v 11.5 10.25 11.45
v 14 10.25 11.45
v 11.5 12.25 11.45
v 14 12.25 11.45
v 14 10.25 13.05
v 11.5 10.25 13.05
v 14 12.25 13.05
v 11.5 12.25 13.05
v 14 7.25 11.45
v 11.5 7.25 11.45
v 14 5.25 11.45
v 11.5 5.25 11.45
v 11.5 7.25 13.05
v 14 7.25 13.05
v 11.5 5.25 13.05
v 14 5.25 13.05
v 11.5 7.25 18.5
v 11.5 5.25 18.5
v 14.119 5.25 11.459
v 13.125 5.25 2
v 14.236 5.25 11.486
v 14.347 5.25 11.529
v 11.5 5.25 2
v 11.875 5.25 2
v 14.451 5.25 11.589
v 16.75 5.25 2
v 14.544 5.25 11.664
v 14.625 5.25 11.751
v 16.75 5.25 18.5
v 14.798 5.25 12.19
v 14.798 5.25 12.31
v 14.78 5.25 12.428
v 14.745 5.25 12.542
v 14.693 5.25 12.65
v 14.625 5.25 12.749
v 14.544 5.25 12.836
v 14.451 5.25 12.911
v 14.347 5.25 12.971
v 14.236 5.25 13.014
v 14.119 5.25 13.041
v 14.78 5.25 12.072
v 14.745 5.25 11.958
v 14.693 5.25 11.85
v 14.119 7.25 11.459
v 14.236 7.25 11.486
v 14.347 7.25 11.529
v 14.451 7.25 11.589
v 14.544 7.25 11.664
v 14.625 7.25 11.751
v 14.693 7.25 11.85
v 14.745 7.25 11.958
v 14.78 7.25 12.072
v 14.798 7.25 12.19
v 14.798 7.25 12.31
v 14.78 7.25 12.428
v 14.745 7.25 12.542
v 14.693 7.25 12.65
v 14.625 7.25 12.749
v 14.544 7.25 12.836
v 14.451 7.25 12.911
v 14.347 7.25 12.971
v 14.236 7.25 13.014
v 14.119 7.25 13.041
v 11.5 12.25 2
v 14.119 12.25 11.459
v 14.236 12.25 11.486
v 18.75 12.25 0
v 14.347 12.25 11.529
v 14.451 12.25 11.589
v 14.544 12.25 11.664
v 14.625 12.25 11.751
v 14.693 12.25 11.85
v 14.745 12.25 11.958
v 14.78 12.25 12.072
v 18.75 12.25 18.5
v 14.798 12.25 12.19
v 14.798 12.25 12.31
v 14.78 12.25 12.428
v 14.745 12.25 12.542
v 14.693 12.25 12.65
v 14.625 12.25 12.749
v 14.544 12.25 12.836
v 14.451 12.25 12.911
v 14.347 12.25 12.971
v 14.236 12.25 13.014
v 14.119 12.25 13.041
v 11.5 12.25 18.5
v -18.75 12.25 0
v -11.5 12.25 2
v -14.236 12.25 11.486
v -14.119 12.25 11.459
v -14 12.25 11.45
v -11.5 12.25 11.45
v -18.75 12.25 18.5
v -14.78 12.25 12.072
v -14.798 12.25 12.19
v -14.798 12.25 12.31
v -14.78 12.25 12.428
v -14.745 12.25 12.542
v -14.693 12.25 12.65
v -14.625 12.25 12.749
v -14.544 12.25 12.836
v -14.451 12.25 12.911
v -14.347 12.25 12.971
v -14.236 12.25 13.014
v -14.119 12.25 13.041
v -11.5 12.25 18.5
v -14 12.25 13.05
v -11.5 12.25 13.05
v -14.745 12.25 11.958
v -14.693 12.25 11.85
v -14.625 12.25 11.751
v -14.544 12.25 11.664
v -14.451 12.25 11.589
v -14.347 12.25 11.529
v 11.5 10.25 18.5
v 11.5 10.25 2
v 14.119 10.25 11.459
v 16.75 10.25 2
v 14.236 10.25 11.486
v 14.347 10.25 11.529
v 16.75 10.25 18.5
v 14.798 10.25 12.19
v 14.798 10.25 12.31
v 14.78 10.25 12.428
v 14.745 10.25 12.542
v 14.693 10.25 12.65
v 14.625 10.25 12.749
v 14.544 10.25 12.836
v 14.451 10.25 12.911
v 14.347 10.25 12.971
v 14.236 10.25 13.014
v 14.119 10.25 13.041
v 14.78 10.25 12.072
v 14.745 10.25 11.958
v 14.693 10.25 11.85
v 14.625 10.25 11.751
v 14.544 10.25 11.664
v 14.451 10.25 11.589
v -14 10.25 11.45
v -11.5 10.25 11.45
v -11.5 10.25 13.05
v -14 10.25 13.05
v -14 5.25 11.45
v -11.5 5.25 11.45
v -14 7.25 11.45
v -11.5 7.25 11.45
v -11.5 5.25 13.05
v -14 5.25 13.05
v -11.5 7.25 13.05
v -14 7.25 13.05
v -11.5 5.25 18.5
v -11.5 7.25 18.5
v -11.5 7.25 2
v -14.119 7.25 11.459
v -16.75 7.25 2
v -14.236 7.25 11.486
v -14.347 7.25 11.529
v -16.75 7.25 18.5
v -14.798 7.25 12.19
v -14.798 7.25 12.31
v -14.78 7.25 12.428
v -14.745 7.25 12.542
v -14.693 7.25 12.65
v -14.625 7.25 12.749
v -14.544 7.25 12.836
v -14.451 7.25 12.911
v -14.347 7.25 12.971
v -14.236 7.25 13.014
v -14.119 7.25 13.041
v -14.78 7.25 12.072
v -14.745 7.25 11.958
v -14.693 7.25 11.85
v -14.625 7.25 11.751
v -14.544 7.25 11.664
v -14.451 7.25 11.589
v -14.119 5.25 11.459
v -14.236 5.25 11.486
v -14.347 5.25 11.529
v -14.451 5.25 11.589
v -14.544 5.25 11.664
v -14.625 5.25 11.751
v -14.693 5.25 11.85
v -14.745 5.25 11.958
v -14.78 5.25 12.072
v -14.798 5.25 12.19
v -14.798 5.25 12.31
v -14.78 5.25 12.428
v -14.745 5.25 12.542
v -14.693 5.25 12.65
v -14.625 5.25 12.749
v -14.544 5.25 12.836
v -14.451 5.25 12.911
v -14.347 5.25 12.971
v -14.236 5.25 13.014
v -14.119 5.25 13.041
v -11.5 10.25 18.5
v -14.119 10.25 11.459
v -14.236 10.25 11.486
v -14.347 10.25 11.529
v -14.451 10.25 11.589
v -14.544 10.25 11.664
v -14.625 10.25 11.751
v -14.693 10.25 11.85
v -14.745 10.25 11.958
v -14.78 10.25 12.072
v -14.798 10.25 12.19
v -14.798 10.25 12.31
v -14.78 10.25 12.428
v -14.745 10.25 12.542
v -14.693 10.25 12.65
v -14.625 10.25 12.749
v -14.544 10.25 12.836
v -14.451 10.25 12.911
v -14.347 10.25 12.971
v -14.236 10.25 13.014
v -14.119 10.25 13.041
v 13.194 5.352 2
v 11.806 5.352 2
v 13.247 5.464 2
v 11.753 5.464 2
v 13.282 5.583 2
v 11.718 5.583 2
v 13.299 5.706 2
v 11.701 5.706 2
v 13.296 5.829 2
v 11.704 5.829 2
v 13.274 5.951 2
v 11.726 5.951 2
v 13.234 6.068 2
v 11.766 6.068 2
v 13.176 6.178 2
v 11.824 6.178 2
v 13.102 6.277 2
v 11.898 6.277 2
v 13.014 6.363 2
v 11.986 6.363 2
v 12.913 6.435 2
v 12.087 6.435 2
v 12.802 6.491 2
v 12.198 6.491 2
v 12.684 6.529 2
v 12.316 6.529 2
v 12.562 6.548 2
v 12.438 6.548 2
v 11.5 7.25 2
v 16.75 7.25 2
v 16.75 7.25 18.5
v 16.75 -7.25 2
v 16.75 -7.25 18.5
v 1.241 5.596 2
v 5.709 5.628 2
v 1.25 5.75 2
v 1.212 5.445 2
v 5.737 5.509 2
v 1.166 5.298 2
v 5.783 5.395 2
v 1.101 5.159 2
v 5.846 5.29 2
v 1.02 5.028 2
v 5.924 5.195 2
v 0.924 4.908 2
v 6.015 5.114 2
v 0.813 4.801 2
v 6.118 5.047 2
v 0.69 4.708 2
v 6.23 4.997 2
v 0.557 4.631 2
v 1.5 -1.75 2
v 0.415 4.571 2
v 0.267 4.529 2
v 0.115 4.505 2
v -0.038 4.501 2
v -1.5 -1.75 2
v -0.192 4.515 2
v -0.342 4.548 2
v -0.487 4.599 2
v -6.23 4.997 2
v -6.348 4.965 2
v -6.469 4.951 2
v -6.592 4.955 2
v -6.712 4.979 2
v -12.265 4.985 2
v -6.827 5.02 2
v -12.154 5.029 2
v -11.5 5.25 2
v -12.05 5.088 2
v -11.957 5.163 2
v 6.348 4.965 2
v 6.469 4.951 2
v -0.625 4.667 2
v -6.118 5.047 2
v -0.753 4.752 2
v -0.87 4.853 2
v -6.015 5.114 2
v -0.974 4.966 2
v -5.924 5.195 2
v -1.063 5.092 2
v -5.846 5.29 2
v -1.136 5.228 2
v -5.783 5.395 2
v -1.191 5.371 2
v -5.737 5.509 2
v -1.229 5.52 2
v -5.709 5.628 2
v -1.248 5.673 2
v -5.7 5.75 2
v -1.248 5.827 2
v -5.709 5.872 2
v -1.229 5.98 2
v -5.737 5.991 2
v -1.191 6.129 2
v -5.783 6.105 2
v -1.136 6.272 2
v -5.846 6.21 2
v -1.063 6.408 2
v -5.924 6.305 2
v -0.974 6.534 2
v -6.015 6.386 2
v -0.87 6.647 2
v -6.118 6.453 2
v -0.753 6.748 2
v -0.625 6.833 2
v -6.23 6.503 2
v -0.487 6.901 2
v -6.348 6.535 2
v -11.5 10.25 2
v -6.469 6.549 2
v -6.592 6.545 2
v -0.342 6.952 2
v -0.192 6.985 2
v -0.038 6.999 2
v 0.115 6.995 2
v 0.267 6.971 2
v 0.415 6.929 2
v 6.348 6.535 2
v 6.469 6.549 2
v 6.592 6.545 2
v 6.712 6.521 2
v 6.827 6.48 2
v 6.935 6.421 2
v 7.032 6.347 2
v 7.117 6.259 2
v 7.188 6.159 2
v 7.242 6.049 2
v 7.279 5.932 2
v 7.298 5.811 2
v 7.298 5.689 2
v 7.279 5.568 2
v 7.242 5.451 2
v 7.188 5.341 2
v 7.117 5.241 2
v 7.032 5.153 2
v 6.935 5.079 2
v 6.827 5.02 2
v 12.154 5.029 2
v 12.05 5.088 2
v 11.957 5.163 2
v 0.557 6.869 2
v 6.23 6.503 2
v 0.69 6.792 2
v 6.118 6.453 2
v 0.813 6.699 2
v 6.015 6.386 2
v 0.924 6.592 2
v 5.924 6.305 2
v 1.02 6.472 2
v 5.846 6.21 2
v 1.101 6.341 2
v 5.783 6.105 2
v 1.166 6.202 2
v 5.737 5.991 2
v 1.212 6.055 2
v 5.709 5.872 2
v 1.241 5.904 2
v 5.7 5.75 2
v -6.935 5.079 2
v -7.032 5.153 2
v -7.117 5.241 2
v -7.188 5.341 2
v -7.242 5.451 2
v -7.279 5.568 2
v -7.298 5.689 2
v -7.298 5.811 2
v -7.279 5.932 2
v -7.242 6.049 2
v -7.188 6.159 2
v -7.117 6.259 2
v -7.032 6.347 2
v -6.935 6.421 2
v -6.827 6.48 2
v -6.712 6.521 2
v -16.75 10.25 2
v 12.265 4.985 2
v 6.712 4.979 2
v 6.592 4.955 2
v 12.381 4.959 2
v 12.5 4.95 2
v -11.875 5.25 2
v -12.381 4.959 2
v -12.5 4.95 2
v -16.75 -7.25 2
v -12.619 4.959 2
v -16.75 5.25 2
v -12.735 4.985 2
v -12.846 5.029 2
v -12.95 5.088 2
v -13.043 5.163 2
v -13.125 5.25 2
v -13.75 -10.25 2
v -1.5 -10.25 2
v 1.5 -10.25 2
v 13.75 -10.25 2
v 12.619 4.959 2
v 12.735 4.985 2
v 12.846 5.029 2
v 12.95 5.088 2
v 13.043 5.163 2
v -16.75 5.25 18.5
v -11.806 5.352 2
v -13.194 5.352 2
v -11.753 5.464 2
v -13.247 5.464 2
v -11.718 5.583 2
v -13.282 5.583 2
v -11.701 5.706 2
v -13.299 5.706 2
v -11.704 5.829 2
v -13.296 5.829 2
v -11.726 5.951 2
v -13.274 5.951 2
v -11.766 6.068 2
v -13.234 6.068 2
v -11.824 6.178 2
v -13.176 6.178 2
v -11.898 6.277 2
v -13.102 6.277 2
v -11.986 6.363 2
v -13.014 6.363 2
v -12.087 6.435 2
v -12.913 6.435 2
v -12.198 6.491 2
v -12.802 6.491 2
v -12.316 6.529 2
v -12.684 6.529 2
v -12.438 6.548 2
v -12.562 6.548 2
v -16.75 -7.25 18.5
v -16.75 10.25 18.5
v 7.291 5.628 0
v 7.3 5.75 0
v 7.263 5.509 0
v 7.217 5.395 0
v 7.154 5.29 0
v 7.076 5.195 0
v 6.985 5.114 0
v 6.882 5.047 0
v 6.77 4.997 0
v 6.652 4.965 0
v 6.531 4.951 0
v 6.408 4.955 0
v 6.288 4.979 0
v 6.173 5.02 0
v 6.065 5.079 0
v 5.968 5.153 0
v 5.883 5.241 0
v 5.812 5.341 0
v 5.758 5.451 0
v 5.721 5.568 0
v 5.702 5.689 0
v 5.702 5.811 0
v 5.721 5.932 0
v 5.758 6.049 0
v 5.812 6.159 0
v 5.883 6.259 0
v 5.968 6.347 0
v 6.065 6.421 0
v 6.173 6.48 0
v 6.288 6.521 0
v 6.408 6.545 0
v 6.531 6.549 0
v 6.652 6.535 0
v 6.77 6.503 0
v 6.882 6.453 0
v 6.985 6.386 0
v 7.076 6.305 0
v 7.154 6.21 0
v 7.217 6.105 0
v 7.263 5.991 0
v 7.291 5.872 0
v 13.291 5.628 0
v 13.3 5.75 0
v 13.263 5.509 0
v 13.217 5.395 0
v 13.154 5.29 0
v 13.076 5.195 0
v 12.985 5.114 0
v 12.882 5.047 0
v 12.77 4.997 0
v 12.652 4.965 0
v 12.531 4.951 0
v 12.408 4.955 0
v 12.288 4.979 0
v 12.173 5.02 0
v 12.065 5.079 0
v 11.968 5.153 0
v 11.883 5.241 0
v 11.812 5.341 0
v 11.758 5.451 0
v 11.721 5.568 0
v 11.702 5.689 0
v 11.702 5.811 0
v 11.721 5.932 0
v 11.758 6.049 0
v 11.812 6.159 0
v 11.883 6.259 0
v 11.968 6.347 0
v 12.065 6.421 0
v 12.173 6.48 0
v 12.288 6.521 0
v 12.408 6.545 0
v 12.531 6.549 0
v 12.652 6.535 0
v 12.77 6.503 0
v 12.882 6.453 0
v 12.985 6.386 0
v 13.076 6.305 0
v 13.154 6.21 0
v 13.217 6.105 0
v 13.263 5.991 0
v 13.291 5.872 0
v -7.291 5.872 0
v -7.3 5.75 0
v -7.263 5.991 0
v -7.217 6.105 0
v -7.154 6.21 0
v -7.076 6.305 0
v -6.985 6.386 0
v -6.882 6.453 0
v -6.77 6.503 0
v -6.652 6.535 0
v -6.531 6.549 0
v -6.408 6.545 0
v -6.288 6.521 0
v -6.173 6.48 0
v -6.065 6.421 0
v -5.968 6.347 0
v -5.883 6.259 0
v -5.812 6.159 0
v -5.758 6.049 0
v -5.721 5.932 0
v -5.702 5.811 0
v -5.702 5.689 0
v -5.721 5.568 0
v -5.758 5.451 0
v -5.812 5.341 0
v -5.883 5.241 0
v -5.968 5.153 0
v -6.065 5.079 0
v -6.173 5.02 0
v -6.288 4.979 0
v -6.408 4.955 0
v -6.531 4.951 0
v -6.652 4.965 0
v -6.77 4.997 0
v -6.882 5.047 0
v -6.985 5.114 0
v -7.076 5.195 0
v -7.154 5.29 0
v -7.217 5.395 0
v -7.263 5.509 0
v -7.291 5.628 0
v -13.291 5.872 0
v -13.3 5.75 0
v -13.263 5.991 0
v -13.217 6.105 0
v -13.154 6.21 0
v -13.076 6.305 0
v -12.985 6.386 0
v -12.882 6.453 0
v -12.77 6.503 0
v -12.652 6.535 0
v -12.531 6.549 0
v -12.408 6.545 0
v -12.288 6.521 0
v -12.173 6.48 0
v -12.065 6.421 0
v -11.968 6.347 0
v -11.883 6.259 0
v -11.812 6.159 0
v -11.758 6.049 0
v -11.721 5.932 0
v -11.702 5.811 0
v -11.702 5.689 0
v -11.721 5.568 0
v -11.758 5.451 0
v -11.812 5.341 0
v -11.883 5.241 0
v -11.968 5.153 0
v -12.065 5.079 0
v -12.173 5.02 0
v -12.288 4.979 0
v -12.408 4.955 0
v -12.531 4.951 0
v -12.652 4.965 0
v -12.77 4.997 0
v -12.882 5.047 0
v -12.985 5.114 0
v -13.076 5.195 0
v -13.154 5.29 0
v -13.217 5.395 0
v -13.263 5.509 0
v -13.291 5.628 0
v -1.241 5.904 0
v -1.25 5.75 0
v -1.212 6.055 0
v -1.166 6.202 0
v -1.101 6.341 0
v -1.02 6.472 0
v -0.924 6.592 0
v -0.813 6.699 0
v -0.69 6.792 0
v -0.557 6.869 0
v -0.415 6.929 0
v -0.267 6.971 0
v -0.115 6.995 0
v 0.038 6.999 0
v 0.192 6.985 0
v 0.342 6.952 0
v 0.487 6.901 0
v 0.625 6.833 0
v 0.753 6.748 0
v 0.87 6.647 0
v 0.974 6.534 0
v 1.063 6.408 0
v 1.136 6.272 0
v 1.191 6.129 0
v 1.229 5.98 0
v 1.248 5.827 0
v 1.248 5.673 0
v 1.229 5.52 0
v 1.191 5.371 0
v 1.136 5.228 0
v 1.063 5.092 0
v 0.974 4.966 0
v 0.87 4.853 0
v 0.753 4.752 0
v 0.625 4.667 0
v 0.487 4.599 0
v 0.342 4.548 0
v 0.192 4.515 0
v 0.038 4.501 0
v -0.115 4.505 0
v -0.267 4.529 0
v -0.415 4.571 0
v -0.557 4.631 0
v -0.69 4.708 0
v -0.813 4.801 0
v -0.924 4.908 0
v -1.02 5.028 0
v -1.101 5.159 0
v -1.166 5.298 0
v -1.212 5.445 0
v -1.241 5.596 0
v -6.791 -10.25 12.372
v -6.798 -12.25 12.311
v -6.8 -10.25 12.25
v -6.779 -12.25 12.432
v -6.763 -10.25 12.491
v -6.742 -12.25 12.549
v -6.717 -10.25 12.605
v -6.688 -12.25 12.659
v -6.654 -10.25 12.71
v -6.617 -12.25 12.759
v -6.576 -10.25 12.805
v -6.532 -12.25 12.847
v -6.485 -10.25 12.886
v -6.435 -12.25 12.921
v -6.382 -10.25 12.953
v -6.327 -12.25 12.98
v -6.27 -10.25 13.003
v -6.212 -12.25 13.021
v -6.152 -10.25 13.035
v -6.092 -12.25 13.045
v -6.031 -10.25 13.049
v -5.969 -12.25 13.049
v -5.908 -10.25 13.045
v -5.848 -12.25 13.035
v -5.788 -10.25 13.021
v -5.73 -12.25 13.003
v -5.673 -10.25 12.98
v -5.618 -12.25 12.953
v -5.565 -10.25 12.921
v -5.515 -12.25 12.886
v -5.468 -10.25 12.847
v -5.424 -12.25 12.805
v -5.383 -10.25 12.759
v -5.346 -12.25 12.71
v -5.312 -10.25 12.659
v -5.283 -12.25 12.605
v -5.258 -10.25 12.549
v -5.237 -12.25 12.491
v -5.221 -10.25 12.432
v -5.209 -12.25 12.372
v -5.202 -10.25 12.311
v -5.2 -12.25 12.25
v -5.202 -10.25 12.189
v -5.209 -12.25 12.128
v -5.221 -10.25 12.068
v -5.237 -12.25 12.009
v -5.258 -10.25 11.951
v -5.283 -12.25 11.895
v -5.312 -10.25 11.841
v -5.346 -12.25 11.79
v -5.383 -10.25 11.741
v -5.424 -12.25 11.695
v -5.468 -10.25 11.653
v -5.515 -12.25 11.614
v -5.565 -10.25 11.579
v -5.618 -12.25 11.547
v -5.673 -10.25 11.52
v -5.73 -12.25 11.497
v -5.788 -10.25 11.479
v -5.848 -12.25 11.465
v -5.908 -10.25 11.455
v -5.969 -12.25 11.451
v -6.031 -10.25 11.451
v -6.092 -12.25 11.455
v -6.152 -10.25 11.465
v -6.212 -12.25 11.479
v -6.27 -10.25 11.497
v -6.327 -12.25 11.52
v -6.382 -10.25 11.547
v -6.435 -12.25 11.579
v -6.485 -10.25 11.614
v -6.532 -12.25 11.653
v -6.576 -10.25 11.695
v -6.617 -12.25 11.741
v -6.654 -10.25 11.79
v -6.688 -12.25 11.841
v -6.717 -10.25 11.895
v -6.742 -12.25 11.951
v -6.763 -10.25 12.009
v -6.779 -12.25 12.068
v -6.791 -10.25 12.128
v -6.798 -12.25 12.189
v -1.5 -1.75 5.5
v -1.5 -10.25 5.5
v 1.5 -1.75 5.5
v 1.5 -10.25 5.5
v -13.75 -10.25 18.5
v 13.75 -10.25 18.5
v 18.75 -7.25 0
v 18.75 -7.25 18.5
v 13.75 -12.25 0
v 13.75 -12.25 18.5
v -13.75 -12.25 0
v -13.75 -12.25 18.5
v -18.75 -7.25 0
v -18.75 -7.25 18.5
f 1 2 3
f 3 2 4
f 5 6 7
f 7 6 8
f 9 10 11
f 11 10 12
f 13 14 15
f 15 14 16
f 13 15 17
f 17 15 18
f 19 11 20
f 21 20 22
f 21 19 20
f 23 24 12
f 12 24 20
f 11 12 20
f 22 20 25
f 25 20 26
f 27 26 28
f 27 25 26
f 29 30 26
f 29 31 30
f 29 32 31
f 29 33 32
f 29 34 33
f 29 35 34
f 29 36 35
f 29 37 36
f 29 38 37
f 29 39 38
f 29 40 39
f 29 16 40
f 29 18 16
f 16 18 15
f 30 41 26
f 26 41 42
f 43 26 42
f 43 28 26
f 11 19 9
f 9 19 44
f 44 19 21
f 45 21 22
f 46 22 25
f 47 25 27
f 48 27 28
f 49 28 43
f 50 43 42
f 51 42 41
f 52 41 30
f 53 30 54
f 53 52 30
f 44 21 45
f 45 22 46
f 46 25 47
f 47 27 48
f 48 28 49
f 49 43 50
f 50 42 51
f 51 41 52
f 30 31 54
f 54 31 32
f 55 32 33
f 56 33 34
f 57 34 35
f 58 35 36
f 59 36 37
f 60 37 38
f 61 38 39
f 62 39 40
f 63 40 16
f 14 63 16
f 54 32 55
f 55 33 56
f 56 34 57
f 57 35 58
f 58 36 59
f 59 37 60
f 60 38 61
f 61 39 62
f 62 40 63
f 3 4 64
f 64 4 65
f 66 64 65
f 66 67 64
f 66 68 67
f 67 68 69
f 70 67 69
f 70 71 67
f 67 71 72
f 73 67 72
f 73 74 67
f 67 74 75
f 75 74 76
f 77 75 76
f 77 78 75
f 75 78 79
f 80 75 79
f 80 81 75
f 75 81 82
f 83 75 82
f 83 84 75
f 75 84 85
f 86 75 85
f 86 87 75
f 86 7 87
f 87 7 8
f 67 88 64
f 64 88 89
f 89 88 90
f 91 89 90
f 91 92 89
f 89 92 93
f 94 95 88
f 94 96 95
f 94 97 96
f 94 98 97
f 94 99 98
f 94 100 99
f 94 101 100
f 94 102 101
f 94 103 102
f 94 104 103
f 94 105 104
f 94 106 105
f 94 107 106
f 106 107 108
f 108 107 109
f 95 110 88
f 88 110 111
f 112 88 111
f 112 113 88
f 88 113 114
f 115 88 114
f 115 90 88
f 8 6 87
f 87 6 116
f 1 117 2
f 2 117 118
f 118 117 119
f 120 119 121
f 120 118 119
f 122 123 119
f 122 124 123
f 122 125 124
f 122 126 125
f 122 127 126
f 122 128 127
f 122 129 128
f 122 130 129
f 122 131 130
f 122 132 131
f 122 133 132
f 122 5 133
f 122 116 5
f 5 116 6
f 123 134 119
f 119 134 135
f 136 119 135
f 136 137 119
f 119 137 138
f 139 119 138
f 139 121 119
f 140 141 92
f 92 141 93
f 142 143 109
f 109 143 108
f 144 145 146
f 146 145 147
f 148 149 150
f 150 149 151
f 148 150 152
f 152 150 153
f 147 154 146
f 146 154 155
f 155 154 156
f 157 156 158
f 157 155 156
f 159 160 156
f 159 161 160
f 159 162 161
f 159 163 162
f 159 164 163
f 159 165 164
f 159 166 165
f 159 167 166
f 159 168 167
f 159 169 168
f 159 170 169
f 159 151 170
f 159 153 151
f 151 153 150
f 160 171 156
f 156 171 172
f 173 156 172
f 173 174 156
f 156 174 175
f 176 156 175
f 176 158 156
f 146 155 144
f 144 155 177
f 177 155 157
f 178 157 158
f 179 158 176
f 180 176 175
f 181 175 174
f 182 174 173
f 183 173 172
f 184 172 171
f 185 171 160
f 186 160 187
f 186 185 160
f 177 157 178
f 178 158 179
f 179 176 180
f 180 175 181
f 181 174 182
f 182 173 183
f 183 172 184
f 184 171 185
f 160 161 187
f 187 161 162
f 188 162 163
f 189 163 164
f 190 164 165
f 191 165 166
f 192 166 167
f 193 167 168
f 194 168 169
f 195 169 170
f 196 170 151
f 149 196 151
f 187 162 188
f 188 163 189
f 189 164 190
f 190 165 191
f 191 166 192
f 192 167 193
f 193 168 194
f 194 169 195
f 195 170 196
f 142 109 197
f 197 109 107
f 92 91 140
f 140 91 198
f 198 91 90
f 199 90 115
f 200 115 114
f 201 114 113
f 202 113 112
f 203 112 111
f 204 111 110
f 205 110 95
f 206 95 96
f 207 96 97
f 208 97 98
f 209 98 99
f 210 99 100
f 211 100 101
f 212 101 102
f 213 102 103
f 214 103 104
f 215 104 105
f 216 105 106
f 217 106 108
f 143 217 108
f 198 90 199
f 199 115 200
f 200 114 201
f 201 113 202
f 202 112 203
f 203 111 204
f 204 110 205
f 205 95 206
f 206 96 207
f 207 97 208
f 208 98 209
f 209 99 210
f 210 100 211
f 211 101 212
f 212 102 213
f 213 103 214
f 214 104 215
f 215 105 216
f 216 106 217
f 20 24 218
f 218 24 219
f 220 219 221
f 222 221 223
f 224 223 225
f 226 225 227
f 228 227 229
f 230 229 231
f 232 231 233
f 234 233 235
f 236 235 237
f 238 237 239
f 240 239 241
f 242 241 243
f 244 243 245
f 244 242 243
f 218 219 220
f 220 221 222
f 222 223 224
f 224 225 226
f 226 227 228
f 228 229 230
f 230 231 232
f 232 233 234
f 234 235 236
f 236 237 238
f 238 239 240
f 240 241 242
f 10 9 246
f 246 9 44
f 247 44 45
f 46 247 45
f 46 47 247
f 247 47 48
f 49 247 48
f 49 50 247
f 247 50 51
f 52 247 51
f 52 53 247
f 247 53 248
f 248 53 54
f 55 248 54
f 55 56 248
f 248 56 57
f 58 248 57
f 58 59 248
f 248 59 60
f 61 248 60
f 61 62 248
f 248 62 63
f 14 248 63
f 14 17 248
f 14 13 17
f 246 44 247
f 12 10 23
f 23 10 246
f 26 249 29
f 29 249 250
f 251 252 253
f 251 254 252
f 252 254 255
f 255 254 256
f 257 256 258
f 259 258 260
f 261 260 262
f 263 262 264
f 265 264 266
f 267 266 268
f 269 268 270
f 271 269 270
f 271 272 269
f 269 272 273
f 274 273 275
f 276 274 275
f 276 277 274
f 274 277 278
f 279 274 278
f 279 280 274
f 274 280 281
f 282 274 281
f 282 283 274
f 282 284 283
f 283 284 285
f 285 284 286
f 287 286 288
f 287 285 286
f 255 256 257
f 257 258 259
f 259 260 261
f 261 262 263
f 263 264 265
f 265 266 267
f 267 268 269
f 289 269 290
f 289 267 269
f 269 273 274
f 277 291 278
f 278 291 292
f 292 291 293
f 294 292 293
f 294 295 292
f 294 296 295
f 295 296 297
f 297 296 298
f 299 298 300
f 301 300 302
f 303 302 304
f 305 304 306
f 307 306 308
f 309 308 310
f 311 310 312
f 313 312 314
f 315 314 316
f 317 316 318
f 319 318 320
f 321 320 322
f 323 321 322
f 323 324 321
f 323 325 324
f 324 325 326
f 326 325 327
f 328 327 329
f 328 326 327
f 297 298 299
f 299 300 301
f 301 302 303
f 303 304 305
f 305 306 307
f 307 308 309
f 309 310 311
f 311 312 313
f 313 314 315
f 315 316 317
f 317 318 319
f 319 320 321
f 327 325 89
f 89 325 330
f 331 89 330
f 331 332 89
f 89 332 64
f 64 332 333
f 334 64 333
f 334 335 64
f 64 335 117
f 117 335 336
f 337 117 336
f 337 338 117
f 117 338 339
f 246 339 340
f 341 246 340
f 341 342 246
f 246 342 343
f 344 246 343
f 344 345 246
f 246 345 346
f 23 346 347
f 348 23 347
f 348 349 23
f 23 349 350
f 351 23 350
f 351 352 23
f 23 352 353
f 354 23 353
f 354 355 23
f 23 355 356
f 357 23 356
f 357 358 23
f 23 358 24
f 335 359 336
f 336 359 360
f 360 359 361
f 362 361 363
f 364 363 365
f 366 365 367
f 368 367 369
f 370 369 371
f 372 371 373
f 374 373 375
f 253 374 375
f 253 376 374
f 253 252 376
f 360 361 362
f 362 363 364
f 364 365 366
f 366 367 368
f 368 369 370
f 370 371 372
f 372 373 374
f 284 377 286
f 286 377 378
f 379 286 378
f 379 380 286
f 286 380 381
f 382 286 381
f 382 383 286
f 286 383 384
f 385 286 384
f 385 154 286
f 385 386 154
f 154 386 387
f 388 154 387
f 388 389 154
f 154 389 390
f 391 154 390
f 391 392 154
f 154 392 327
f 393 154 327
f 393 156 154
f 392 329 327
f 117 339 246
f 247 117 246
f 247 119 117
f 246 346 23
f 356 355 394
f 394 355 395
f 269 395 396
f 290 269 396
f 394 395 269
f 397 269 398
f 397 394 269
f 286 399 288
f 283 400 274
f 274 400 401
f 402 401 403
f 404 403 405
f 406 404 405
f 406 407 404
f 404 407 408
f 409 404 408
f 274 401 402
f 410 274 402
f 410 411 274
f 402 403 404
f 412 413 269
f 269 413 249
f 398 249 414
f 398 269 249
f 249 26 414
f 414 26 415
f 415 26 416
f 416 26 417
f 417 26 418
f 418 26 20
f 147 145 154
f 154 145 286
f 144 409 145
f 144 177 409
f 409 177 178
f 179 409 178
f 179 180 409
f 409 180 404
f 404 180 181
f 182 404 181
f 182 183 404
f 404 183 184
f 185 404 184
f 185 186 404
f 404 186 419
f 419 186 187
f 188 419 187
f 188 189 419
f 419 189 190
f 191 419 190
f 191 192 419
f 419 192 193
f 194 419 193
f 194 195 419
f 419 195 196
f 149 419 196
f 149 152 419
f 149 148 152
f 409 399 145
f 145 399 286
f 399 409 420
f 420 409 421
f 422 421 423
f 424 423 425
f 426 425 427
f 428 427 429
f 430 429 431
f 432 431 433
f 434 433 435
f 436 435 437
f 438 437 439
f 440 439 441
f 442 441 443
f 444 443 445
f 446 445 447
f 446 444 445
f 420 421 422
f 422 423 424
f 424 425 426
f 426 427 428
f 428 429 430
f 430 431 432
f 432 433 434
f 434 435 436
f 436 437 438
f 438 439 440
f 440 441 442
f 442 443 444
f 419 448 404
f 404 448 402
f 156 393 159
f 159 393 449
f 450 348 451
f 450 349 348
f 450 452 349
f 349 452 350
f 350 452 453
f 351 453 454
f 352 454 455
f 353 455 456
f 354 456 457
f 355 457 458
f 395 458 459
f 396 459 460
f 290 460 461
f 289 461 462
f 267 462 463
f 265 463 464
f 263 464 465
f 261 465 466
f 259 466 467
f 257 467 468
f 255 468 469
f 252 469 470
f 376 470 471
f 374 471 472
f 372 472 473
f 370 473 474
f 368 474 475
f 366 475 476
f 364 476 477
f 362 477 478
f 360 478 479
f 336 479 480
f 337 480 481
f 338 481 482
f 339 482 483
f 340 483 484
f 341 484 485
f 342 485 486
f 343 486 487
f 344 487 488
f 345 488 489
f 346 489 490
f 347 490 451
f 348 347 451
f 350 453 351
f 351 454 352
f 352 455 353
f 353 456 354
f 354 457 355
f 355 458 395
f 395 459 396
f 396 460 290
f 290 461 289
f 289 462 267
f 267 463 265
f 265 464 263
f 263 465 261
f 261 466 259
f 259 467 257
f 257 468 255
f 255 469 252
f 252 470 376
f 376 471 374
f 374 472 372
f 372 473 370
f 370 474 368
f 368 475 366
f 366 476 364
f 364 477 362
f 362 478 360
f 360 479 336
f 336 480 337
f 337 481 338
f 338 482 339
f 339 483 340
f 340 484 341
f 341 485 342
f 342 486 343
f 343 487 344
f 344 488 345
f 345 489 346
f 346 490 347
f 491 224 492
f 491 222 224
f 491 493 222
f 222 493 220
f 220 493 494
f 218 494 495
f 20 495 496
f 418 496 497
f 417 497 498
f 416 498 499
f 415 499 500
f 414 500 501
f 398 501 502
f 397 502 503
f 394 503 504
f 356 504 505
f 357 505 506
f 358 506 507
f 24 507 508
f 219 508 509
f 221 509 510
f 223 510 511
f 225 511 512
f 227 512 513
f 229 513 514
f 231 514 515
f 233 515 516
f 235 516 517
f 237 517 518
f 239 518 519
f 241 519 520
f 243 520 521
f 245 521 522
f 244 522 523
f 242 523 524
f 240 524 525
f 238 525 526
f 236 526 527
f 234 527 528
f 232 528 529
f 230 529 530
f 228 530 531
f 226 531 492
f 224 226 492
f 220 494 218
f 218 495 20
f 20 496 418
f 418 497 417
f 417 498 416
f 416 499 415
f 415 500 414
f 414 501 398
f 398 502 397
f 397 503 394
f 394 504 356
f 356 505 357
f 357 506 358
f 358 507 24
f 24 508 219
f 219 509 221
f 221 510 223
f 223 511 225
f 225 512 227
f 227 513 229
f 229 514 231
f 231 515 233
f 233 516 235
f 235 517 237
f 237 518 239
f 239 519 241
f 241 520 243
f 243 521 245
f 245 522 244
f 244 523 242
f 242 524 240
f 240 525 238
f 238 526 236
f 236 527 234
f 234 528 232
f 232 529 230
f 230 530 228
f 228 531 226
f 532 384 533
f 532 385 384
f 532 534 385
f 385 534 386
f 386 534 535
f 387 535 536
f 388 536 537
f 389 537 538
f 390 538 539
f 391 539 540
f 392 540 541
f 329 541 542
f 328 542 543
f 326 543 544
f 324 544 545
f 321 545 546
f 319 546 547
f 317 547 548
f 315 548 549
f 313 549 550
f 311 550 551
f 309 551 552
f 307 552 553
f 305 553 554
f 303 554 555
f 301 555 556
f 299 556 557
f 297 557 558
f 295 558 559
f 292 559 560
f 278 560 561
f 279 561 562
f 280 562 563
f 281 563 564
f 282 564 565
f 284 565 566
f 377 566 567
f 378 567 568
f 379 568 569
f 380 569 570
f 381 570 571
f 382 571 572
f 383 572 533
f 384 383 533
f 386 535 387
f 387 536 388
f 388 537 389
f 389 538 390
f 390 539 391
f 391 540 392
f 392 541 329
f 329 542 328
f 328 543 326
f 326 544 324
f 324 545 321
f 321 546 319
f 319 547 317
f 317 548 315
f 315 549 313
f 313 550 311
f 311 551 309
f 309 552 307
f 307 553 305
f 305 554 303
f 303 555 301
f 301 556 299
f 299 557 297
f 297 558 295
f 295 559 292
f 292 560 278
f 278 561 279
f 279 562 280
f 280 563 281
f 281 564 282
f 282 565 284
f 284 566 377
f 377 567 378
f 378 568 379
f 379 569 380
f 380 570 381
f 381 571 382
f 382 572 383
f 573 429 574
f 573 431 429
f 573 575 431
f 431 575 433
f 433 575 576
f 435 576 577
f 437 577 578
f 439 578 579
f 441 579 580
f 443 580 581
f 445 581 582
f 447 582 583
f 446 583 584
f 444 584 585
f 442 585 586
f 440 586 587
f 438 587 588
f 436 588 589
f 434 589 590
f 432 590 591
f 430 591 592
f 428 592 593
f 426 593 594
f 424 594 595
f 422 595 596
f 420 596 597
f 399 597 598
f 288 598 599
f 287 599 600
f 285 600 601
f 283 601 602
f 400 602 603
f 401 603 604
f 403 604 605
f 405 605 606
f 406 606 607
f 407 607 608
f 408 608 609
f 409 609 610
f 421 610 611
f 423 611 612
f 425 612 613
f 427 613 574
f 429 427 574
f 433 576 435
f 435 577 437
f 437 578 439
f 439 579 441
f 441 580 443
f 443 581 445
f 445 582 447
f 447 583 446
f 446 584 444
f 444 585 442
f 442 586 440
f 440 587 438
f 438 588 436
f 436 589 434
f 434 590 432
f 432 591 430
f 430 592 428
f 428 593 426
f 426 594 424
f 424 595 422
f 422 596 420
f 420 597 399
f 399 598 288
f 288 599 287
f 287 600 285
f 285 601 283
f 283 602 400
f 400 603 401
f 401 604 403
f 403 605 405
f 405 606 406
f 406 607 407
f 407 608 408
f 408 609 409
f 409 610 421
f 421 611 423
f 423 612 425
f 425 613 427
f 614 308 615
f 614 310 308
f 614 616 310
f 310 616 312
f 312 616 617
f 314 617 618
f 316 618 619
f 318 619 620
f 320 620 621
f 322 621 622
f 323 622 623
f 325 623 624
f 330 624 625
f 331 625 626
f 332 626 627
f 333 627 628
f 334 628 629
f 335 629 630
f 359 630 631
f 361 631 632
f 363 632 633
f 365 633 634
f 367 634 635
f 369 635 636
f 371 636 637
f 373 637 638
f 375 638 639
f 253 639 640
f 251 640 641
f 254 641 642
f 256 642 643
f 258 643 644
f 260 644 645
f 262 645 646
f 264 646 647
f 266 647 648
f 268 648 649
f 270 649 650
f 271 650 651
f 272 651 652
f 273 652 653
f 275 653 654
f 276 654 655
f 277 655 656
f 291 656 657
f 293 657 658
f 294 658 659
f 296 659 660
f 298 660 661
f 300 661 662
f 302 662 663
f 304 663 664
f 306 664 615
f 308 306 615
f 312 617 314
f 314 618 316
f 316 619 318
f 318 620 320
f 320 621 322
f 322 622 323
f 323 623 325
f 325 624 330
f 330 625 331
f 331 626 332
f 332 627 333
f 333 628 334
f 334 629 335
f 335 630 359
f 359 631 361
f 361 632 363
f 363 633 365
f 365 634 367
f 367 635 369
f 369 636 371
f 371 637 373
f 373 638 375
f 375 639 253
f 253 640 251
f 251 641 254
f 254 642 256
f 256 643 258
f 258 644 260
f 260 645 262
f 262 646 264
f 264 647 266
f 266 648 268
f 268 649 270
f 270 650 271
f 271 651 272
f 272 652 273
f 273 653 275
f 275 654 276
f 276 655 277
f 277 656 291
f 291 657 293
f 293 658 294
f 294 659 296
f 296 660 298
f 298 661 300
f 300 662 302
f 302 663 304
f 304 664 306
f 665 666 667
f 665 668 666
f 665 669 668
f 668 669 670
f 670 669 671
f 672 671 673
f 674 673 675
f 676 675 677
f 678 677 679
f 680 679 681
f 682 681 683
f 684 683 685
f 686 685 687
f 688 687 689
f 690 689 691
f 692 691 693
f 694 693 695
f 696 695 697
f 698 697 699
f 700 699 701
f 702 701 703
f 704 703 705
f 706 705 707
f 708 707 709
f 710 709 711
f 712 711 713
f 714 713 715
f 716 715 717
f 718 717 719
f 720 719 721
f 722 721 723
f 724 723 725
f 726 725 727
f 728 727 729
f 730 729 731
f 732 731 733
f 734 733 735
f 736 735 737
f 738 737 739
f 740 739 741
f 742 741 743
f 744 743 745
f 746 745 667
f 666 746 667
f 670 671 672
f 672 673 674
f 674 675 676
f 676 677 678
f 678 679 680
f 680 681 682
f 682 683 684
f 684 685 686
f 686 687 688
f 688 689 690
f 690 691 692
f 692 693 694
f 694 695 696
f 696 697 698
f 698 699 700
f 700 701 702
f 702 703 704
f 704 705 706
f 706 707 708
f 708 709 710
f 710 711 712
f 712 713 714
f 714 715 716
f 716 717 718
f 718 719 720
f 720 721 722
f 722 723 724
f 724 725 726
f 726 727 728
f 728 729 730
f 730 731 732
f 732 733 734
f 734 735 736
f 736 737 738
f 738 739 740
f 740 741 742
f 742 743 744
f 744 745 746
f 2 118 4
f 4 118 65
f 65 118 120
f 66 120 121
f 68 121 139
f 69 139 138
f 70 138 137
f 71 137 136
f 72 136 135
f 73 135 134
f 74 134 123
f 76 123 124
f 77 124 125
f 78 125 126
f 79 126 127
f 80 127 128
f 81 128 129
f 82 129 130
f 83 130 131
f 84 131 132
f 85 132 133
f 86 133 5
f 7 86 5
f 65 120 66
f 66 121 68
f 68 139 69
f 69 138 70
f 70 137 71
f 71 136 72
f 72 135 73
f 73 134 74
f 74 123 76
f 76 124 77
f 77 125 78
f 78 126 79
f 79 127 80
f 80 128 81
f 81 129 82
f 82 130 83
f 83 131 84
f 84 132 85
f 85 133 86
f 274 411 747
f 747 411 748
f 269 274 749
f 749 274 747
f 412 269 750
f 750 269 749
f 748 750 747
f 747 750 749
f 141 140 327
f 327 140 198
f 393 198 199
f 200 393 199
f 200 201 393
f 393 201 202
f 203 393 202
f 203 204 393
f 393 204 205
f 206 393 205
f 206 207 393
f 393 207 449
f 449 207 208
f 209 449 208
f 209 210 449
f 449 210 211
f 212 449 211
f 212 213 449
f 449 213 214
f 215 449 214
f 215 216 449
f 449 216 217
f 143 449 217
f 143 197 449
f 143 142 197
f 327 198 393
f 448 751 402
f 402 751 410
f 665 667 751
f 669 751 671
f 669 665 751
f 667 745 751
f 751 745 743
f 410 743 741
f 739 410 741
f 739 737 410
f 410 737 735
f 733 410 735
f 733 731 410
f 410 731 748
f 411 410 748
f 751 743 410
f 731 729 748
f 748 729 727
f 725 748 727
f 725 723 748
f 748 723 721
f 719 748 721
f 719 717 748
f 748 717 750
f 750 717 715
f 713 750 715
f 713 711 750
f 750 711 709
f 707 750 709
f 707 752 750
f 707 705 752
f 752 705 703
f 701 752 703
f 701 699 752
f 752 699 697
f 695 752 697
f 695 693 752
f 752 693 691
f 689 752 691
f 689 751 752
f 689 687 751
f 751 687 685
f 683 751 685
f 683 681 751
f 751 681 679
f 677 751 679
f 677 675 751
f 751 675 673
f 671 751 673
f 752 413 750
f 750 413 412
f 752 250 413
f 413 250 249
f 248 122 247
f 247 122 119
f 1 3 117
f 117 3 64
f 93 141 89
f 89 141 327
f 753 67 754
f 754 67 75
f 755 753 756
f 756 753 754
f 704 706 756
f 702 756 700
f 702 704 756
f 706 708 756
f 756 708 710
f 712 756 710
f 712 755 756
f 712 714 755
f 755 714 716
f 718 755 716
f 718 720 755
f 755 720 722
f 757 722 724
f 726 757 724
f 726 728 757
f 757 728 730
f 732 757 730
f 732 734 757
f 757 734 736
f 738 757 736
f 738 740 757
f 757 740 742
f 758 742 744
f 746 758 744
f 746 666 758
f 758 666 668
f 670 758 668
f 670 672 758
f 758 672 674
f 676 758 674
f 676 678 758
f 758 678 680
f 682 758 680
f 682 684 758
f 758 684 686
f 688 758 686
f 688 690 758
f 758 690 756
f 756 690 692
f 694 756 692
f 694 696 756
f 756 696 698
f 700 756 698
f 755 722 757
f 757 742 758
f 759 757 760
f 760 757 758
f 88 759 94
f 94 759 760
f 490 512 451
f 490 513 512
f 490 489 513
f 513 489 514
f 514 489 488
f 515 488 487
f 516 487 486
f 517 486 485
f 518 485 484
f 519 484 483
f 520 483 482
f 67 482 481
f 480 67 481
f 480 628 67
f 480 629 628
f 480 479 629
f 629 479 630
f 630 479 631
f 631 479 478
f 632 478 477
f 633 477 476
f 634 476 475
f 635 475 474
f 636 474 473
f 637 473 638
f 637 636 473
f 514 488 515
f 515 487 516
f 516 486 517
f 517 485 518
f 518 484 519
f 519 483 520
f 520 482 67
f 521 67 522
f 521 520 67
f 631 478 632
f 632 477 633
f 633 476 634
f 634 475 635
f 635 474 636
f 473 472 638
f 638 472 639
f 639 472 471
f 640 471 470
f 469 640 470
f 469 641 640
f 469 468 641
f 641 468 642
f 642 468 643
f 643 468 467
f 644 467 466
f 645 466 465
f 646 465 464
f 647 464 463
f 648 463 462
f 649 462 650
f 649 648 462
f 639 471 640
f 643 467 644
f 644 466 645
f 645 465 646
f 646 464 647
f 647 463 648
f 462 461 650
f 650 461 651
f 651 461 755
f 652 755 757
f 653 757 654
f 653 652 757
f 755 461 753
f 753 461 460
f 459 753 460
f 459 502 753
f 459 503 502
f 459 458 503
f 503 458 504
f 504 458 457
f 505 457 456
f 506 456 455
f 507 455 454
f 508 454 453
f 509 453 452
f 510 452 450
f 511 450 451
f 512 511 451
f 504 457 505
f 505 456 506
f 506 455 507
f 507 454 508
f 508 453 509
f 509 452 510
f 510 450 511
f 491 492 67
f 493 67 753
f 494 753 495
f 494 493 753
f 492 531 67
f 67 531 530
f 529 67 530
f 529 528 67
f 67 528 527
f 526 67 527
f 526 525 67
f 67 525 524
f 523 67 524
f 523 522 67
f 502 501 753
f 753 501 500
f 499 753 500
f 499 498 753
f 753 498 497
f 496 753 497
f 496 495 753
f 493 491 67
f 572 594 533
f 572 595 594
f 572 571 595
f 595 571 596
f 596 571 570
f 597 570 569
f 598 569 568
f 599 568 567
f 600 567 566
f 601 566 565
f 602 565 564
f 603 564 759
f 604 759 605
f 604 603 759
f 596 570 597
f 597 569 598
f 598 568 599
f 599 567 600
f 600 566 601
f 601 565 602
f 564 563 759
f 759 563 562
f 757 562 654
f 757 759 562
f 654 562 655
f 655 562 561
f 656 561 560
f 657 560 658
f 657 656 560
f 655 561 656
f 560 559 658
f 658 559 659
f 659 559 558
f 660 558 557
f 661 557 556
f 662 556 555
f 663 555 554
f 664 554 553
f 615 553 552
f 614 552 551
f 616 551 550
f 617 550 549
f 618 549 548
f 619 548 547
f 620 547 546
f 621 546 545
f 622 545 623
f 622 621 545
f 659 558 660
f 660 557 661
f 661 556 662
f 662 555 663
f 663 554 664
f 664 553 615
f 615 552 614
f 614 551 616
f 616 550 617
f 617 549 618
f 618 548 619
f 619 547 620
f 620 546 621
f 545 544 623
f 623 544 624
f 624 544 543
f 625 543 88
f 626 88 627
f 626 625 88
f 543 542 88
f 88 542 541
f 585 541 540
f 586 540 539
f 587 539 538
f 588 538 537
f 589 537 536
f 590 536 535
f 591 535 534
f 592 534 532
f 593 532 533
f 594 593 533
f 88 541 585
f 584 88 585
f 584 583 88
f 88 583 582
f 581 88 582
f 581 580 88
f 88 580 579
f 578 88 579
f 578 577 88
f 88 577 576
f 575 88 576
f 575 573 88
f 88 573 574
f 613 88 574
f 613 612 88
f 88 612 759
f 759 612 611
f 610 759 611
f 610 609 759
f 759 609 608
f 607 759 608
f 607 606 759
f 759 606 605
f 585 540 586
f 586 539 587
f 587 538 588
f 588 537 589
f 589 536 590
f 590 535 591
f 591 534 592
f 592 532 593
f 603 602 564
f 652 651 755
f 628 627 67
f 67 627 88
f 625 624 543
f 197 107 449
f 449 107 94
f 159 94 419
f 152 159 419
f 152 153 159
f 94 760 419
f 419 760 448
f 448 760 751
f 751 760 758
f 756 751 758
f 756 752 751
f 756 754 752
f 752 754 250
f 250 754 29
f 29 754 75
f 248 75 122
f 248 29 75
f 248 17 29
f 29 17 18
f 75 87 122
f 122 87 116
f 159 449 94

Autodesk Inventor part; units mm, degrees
ref_plane "YZ Plane" through (0, 0, 0) normal (1, 0, 0) x (0, 1, 0)
ref_plane "XZ Plane" through (0, 0, 0) normal (0, 1, 0) x (-1, 0, 0)
ref_plane "XY Plane" through (0, 0, 0) normal (0, 0, 1) x (1, 0, 0)
sketch "スケッチ1" plane through (0, 0, 0) normal (0, 0, 1) x (1, 0, 0)
  line L0 (-26.25, 0) -> (26.25, 0) construction
  line L1 (0, -17.15) -> (0, 17.15) construction
  line L2 (-18.75, 12.25) -> (18.75, 12.25)
  line L3 (18.75, 12.25) -> (18.75, -7.25)
  line L4 (13.75, -12.25) -> (-13.75, -12.25)
  line L5 (-18.75, -7.25) -> (-18.75, 12.25)
  line L6 (-13.75, -12.25) -> (-18.75, -7.25)
  line L7 (18.75, -7.25) -> (13.75, -12.25)
  point P0 (0, 0)
  point P1 (18.75, -12.25)
  point P2 (-18.75, -12.25)
  dimension "d0" = 37.5
  dimension "d1" = 24.5
  dimension "d2" = 18.75
  dimension "d3" = 12.25
  dimension "d76" = 5
  dimension "d77" = 5
  dimension "d78" = 5
  dimension "d79" = 5
extrude "押し出し1" add sketch "スケッチ1" along normal blind 18.5
sketch "スケッチ2" plane through (0, 0, 18.5) normal (0, 0, 1) x (1, 0, 0)
  line L0 (18.75, 12.25) -> (-18.75, 12.25) projected
  line L1 (-18.75, 12.25) -> (-18.75, -7.25) projected
  line L2 (-13.75, -12.25) -> (13.75, -12.25) projected
  line L3 (18.75, -7.25) -> (18.75, 12.25) projected
  line L4 (16.75, 10.25) -> (16.75, -7.25)
  line L5 (13.75, -10.25) -> (-13.75, -10.25)
  line L6 (-16.75, -7.25) -> (-16.75, 10.25)
  line L7 (-11.5, 12.25) -> (11.5, 12.25)
  line L8 (11.5, 12.25) -> (11.5, 10.25)
  line L9 (-11.5, 10.25) -> (-11.5, 12.25)
  line L10 (-16.75, 10.25) -> (-11.5, 10.25)
  line L11 (11.5, 10.25) -> (16.75, 10.25)
  line L12 (-16.75, -7.25) -> (-13.75, -10.25)
  line L13 (16.75, -7.25) -> (13.75, -10.25)
  point P0 (-18.75, -12.25)
  point P1 (18.75, -12.25)
  point P2 (0, 0)
  dimension "d6" = 2
  dimension "d7" = 7.25
  dimension "d8" = 7.25
  dimension "d66" = 5
  dimension "d67" = 5
  dimension "d68" = 5
  dimension "d69" = 5
  dimension "d71" = 2
  dimension "d72" = 2
  dimension "d74" = 2
  dimension "d75" = 2
extrude "押し出し2" cut sketch "スケッチ2" against normal blind 16.5
sketch "スケッチ3" plane through (0, 0, 2) normal (0, 0, 1) x (1, 0, 0)
  line L0 (13.75, -10.25) -> (-13.75, -10.25) projected
  line L1 (-1.5, -10.25) -> (1.5, -10.25)
  line L2 (1.5, -10.25) -> (1.5, -1.75)
  line L3 (1.5, -1.75) -> (-1.5, -1.75)
  line L4 (-1.5, -1.75) -> (-1.5, -10.25)
  point P0 (0, 0)
  dimension "d11" = 3
  dimension "d12" = 8.5
  dimension "d13" = 1.5
extrude "押し出し3" add sketch "スケッチ3" along normal blind 3.5
sketch "スケッチ4" plane through (-16.75, 10.25, 18.5) normal (0, -1, 0) x (1, 0, 0)
  line L0 (0, 0) -> (5.25, 0) projected
  line L1 (5.25, 0) -> (5.25, -16.5) projected
  point P0 (16.75, -18.5)
  point P1 (2.75, -6.25)
  dimension "d16" = 6.25
  dimension "d50" = 2.5
hole "穴1" at (-14, 10.25, 12.25) direction (0, 1, 0) diameter 1.6 end through all
mirror "ミラー1" about plane through (0, 0, 0) normal (1, 0, 0) of "穴1"
sketch "スケッチ5" plane through (-18.75, -12.25, 0) normal (0, -1, 0) x (1, 0, 0)
  circle A0 centre (4.75, 12.25) radius 0.8 projected
  line L0 (5, 18.5) -> (32.5, 18.5) projected
  point P0 (18.75, 0)
  point P1 (12.75, 12.25)
  point P2 (37.5, 18.5)
  point P3 (0, 18.5)
  dimension "d25" = 8
  dimension "d60" = 6.25
hole "穴2" at (-6, -12.25, 12.25) direction (0, 1, 0) diameter 1.6 end through all
sketch "スケッチ6" plane through (0, 0, 2) normal (0, 0, 1) x (1, 0, 0)
  line L0 (-1.5, -10.25) -> (-13.75, -10.25) projected
  point P0 (0, 0)
  point P1 (0, 5.75)
  dimension "d33" = 16
hole "穴3" at (0, 5.75, 2) direction (0, 0, -1) diameter 2.5 end through all
sketch "スケッチ7" plane through (0, 0, 2) normal (0, 0, 1) x (1, 0, 0)
  circle A0 centre (0, 5.75) radius 1.25 projected
  point P0 (0, 0)
  point P1 (-6.5, 5.75)
  point P2 (-12.5, 5.75)
  dimension "d41" = 6.5
  dimension "d42" = 12.5
hole "穴4" at (-6.5, 5.75, 2) at (-12.5, 5.75, 2) direction (0, 0, -1) diameter 1.6 end through all
mirror "ミラー2" about plane through (0, 0, 0) normal (1, 0, 0) of "穴4"
sketch "スケッチ8" plane through (0, 0, 2) normal (0, 0, 1) x (1, 0, 0)
  line L0 (-16.75, 10.25) -> (-11.5, 10.25) projected
  line L1 (-16.75, -10.25) -> (-16.75, 10.25) projected
  line L2 (-16.75, 7.25) -> (-11.5, 7.25)
  line L3 (-11.5, 7.25) -> (-11.5, 5.25)
  line L4 (-11.5, 5.25) -> (-16.75, 5.25)
  line L5 (-16.75, 5.25) -> (-16.75, 7.25)
  point P0 (-13.75, -10.25)
  point P1 (0, 0)
  dimension "d51" = 2
  dimension "d52" = 5.25
  dimension "d53" = 3
extrude "押し出し4" add sketch "スケッチ8" along normal blind 16.5
sketch "スケッチ9" plane through (-16.75, 5.25, 2) normal (0, -1, 0) x (1, 0, 0)
  circle A0 centre (2.75, 10.25) radius 0.8 projected
  point P0 (16.75, -2)
extrude "押し出し5" cut sketch "スケッチ9" against normal blind 3
mirror "ミラー3" about plane through (0, 0, 0) normal (1, 0, 0) of "押し出し4"
mirror "ミラー4" about plane through (0, 0, 0) normal (1, 0, 0) of "押し出し5"
sketch "スケッチ10" plane through (-18.75, 12.25, 0) normal (0, 1, 0) x (1, 0, 0)
  circle A0 centre (4.75, -12.25) radius 0.8 projected
  line L0 (7.25, -18.5) -> (7.25, -2) projected
  line L1 (4.75, -11.45) -> (7.25, -11.45)
  line L2 (7.25, -11.45) -> (7.25, -13.05)
  line L3 (7.25, -13.05) -> (4.75, -13.05)
  line L4 (4.75, -13.05) -> (4.75, -11.45)
  point P0 (18.75, 0)
extrude "押し出し6" cut sketch "スケッチ10" against normal blind 10 contours A0 L4 | A0 L1 L0 L3 picked at (4.8657, -12.0097)
mirror "ミラー5" about plane through (0, 0, 0) normal (1, 0, 0) of "押し出し6"
equation "\"d2\" = 0.5 * d0"
equation "\"d3\" = 0.5 * d1"
equation "\"d77\" = d76"
equation "\"d78\" = d76"
equation "\"d79\" = d78"
equation "\"d8\" = d7"
equation "\"d13\" = 0.5 * d11"
properties part number "case-new"
